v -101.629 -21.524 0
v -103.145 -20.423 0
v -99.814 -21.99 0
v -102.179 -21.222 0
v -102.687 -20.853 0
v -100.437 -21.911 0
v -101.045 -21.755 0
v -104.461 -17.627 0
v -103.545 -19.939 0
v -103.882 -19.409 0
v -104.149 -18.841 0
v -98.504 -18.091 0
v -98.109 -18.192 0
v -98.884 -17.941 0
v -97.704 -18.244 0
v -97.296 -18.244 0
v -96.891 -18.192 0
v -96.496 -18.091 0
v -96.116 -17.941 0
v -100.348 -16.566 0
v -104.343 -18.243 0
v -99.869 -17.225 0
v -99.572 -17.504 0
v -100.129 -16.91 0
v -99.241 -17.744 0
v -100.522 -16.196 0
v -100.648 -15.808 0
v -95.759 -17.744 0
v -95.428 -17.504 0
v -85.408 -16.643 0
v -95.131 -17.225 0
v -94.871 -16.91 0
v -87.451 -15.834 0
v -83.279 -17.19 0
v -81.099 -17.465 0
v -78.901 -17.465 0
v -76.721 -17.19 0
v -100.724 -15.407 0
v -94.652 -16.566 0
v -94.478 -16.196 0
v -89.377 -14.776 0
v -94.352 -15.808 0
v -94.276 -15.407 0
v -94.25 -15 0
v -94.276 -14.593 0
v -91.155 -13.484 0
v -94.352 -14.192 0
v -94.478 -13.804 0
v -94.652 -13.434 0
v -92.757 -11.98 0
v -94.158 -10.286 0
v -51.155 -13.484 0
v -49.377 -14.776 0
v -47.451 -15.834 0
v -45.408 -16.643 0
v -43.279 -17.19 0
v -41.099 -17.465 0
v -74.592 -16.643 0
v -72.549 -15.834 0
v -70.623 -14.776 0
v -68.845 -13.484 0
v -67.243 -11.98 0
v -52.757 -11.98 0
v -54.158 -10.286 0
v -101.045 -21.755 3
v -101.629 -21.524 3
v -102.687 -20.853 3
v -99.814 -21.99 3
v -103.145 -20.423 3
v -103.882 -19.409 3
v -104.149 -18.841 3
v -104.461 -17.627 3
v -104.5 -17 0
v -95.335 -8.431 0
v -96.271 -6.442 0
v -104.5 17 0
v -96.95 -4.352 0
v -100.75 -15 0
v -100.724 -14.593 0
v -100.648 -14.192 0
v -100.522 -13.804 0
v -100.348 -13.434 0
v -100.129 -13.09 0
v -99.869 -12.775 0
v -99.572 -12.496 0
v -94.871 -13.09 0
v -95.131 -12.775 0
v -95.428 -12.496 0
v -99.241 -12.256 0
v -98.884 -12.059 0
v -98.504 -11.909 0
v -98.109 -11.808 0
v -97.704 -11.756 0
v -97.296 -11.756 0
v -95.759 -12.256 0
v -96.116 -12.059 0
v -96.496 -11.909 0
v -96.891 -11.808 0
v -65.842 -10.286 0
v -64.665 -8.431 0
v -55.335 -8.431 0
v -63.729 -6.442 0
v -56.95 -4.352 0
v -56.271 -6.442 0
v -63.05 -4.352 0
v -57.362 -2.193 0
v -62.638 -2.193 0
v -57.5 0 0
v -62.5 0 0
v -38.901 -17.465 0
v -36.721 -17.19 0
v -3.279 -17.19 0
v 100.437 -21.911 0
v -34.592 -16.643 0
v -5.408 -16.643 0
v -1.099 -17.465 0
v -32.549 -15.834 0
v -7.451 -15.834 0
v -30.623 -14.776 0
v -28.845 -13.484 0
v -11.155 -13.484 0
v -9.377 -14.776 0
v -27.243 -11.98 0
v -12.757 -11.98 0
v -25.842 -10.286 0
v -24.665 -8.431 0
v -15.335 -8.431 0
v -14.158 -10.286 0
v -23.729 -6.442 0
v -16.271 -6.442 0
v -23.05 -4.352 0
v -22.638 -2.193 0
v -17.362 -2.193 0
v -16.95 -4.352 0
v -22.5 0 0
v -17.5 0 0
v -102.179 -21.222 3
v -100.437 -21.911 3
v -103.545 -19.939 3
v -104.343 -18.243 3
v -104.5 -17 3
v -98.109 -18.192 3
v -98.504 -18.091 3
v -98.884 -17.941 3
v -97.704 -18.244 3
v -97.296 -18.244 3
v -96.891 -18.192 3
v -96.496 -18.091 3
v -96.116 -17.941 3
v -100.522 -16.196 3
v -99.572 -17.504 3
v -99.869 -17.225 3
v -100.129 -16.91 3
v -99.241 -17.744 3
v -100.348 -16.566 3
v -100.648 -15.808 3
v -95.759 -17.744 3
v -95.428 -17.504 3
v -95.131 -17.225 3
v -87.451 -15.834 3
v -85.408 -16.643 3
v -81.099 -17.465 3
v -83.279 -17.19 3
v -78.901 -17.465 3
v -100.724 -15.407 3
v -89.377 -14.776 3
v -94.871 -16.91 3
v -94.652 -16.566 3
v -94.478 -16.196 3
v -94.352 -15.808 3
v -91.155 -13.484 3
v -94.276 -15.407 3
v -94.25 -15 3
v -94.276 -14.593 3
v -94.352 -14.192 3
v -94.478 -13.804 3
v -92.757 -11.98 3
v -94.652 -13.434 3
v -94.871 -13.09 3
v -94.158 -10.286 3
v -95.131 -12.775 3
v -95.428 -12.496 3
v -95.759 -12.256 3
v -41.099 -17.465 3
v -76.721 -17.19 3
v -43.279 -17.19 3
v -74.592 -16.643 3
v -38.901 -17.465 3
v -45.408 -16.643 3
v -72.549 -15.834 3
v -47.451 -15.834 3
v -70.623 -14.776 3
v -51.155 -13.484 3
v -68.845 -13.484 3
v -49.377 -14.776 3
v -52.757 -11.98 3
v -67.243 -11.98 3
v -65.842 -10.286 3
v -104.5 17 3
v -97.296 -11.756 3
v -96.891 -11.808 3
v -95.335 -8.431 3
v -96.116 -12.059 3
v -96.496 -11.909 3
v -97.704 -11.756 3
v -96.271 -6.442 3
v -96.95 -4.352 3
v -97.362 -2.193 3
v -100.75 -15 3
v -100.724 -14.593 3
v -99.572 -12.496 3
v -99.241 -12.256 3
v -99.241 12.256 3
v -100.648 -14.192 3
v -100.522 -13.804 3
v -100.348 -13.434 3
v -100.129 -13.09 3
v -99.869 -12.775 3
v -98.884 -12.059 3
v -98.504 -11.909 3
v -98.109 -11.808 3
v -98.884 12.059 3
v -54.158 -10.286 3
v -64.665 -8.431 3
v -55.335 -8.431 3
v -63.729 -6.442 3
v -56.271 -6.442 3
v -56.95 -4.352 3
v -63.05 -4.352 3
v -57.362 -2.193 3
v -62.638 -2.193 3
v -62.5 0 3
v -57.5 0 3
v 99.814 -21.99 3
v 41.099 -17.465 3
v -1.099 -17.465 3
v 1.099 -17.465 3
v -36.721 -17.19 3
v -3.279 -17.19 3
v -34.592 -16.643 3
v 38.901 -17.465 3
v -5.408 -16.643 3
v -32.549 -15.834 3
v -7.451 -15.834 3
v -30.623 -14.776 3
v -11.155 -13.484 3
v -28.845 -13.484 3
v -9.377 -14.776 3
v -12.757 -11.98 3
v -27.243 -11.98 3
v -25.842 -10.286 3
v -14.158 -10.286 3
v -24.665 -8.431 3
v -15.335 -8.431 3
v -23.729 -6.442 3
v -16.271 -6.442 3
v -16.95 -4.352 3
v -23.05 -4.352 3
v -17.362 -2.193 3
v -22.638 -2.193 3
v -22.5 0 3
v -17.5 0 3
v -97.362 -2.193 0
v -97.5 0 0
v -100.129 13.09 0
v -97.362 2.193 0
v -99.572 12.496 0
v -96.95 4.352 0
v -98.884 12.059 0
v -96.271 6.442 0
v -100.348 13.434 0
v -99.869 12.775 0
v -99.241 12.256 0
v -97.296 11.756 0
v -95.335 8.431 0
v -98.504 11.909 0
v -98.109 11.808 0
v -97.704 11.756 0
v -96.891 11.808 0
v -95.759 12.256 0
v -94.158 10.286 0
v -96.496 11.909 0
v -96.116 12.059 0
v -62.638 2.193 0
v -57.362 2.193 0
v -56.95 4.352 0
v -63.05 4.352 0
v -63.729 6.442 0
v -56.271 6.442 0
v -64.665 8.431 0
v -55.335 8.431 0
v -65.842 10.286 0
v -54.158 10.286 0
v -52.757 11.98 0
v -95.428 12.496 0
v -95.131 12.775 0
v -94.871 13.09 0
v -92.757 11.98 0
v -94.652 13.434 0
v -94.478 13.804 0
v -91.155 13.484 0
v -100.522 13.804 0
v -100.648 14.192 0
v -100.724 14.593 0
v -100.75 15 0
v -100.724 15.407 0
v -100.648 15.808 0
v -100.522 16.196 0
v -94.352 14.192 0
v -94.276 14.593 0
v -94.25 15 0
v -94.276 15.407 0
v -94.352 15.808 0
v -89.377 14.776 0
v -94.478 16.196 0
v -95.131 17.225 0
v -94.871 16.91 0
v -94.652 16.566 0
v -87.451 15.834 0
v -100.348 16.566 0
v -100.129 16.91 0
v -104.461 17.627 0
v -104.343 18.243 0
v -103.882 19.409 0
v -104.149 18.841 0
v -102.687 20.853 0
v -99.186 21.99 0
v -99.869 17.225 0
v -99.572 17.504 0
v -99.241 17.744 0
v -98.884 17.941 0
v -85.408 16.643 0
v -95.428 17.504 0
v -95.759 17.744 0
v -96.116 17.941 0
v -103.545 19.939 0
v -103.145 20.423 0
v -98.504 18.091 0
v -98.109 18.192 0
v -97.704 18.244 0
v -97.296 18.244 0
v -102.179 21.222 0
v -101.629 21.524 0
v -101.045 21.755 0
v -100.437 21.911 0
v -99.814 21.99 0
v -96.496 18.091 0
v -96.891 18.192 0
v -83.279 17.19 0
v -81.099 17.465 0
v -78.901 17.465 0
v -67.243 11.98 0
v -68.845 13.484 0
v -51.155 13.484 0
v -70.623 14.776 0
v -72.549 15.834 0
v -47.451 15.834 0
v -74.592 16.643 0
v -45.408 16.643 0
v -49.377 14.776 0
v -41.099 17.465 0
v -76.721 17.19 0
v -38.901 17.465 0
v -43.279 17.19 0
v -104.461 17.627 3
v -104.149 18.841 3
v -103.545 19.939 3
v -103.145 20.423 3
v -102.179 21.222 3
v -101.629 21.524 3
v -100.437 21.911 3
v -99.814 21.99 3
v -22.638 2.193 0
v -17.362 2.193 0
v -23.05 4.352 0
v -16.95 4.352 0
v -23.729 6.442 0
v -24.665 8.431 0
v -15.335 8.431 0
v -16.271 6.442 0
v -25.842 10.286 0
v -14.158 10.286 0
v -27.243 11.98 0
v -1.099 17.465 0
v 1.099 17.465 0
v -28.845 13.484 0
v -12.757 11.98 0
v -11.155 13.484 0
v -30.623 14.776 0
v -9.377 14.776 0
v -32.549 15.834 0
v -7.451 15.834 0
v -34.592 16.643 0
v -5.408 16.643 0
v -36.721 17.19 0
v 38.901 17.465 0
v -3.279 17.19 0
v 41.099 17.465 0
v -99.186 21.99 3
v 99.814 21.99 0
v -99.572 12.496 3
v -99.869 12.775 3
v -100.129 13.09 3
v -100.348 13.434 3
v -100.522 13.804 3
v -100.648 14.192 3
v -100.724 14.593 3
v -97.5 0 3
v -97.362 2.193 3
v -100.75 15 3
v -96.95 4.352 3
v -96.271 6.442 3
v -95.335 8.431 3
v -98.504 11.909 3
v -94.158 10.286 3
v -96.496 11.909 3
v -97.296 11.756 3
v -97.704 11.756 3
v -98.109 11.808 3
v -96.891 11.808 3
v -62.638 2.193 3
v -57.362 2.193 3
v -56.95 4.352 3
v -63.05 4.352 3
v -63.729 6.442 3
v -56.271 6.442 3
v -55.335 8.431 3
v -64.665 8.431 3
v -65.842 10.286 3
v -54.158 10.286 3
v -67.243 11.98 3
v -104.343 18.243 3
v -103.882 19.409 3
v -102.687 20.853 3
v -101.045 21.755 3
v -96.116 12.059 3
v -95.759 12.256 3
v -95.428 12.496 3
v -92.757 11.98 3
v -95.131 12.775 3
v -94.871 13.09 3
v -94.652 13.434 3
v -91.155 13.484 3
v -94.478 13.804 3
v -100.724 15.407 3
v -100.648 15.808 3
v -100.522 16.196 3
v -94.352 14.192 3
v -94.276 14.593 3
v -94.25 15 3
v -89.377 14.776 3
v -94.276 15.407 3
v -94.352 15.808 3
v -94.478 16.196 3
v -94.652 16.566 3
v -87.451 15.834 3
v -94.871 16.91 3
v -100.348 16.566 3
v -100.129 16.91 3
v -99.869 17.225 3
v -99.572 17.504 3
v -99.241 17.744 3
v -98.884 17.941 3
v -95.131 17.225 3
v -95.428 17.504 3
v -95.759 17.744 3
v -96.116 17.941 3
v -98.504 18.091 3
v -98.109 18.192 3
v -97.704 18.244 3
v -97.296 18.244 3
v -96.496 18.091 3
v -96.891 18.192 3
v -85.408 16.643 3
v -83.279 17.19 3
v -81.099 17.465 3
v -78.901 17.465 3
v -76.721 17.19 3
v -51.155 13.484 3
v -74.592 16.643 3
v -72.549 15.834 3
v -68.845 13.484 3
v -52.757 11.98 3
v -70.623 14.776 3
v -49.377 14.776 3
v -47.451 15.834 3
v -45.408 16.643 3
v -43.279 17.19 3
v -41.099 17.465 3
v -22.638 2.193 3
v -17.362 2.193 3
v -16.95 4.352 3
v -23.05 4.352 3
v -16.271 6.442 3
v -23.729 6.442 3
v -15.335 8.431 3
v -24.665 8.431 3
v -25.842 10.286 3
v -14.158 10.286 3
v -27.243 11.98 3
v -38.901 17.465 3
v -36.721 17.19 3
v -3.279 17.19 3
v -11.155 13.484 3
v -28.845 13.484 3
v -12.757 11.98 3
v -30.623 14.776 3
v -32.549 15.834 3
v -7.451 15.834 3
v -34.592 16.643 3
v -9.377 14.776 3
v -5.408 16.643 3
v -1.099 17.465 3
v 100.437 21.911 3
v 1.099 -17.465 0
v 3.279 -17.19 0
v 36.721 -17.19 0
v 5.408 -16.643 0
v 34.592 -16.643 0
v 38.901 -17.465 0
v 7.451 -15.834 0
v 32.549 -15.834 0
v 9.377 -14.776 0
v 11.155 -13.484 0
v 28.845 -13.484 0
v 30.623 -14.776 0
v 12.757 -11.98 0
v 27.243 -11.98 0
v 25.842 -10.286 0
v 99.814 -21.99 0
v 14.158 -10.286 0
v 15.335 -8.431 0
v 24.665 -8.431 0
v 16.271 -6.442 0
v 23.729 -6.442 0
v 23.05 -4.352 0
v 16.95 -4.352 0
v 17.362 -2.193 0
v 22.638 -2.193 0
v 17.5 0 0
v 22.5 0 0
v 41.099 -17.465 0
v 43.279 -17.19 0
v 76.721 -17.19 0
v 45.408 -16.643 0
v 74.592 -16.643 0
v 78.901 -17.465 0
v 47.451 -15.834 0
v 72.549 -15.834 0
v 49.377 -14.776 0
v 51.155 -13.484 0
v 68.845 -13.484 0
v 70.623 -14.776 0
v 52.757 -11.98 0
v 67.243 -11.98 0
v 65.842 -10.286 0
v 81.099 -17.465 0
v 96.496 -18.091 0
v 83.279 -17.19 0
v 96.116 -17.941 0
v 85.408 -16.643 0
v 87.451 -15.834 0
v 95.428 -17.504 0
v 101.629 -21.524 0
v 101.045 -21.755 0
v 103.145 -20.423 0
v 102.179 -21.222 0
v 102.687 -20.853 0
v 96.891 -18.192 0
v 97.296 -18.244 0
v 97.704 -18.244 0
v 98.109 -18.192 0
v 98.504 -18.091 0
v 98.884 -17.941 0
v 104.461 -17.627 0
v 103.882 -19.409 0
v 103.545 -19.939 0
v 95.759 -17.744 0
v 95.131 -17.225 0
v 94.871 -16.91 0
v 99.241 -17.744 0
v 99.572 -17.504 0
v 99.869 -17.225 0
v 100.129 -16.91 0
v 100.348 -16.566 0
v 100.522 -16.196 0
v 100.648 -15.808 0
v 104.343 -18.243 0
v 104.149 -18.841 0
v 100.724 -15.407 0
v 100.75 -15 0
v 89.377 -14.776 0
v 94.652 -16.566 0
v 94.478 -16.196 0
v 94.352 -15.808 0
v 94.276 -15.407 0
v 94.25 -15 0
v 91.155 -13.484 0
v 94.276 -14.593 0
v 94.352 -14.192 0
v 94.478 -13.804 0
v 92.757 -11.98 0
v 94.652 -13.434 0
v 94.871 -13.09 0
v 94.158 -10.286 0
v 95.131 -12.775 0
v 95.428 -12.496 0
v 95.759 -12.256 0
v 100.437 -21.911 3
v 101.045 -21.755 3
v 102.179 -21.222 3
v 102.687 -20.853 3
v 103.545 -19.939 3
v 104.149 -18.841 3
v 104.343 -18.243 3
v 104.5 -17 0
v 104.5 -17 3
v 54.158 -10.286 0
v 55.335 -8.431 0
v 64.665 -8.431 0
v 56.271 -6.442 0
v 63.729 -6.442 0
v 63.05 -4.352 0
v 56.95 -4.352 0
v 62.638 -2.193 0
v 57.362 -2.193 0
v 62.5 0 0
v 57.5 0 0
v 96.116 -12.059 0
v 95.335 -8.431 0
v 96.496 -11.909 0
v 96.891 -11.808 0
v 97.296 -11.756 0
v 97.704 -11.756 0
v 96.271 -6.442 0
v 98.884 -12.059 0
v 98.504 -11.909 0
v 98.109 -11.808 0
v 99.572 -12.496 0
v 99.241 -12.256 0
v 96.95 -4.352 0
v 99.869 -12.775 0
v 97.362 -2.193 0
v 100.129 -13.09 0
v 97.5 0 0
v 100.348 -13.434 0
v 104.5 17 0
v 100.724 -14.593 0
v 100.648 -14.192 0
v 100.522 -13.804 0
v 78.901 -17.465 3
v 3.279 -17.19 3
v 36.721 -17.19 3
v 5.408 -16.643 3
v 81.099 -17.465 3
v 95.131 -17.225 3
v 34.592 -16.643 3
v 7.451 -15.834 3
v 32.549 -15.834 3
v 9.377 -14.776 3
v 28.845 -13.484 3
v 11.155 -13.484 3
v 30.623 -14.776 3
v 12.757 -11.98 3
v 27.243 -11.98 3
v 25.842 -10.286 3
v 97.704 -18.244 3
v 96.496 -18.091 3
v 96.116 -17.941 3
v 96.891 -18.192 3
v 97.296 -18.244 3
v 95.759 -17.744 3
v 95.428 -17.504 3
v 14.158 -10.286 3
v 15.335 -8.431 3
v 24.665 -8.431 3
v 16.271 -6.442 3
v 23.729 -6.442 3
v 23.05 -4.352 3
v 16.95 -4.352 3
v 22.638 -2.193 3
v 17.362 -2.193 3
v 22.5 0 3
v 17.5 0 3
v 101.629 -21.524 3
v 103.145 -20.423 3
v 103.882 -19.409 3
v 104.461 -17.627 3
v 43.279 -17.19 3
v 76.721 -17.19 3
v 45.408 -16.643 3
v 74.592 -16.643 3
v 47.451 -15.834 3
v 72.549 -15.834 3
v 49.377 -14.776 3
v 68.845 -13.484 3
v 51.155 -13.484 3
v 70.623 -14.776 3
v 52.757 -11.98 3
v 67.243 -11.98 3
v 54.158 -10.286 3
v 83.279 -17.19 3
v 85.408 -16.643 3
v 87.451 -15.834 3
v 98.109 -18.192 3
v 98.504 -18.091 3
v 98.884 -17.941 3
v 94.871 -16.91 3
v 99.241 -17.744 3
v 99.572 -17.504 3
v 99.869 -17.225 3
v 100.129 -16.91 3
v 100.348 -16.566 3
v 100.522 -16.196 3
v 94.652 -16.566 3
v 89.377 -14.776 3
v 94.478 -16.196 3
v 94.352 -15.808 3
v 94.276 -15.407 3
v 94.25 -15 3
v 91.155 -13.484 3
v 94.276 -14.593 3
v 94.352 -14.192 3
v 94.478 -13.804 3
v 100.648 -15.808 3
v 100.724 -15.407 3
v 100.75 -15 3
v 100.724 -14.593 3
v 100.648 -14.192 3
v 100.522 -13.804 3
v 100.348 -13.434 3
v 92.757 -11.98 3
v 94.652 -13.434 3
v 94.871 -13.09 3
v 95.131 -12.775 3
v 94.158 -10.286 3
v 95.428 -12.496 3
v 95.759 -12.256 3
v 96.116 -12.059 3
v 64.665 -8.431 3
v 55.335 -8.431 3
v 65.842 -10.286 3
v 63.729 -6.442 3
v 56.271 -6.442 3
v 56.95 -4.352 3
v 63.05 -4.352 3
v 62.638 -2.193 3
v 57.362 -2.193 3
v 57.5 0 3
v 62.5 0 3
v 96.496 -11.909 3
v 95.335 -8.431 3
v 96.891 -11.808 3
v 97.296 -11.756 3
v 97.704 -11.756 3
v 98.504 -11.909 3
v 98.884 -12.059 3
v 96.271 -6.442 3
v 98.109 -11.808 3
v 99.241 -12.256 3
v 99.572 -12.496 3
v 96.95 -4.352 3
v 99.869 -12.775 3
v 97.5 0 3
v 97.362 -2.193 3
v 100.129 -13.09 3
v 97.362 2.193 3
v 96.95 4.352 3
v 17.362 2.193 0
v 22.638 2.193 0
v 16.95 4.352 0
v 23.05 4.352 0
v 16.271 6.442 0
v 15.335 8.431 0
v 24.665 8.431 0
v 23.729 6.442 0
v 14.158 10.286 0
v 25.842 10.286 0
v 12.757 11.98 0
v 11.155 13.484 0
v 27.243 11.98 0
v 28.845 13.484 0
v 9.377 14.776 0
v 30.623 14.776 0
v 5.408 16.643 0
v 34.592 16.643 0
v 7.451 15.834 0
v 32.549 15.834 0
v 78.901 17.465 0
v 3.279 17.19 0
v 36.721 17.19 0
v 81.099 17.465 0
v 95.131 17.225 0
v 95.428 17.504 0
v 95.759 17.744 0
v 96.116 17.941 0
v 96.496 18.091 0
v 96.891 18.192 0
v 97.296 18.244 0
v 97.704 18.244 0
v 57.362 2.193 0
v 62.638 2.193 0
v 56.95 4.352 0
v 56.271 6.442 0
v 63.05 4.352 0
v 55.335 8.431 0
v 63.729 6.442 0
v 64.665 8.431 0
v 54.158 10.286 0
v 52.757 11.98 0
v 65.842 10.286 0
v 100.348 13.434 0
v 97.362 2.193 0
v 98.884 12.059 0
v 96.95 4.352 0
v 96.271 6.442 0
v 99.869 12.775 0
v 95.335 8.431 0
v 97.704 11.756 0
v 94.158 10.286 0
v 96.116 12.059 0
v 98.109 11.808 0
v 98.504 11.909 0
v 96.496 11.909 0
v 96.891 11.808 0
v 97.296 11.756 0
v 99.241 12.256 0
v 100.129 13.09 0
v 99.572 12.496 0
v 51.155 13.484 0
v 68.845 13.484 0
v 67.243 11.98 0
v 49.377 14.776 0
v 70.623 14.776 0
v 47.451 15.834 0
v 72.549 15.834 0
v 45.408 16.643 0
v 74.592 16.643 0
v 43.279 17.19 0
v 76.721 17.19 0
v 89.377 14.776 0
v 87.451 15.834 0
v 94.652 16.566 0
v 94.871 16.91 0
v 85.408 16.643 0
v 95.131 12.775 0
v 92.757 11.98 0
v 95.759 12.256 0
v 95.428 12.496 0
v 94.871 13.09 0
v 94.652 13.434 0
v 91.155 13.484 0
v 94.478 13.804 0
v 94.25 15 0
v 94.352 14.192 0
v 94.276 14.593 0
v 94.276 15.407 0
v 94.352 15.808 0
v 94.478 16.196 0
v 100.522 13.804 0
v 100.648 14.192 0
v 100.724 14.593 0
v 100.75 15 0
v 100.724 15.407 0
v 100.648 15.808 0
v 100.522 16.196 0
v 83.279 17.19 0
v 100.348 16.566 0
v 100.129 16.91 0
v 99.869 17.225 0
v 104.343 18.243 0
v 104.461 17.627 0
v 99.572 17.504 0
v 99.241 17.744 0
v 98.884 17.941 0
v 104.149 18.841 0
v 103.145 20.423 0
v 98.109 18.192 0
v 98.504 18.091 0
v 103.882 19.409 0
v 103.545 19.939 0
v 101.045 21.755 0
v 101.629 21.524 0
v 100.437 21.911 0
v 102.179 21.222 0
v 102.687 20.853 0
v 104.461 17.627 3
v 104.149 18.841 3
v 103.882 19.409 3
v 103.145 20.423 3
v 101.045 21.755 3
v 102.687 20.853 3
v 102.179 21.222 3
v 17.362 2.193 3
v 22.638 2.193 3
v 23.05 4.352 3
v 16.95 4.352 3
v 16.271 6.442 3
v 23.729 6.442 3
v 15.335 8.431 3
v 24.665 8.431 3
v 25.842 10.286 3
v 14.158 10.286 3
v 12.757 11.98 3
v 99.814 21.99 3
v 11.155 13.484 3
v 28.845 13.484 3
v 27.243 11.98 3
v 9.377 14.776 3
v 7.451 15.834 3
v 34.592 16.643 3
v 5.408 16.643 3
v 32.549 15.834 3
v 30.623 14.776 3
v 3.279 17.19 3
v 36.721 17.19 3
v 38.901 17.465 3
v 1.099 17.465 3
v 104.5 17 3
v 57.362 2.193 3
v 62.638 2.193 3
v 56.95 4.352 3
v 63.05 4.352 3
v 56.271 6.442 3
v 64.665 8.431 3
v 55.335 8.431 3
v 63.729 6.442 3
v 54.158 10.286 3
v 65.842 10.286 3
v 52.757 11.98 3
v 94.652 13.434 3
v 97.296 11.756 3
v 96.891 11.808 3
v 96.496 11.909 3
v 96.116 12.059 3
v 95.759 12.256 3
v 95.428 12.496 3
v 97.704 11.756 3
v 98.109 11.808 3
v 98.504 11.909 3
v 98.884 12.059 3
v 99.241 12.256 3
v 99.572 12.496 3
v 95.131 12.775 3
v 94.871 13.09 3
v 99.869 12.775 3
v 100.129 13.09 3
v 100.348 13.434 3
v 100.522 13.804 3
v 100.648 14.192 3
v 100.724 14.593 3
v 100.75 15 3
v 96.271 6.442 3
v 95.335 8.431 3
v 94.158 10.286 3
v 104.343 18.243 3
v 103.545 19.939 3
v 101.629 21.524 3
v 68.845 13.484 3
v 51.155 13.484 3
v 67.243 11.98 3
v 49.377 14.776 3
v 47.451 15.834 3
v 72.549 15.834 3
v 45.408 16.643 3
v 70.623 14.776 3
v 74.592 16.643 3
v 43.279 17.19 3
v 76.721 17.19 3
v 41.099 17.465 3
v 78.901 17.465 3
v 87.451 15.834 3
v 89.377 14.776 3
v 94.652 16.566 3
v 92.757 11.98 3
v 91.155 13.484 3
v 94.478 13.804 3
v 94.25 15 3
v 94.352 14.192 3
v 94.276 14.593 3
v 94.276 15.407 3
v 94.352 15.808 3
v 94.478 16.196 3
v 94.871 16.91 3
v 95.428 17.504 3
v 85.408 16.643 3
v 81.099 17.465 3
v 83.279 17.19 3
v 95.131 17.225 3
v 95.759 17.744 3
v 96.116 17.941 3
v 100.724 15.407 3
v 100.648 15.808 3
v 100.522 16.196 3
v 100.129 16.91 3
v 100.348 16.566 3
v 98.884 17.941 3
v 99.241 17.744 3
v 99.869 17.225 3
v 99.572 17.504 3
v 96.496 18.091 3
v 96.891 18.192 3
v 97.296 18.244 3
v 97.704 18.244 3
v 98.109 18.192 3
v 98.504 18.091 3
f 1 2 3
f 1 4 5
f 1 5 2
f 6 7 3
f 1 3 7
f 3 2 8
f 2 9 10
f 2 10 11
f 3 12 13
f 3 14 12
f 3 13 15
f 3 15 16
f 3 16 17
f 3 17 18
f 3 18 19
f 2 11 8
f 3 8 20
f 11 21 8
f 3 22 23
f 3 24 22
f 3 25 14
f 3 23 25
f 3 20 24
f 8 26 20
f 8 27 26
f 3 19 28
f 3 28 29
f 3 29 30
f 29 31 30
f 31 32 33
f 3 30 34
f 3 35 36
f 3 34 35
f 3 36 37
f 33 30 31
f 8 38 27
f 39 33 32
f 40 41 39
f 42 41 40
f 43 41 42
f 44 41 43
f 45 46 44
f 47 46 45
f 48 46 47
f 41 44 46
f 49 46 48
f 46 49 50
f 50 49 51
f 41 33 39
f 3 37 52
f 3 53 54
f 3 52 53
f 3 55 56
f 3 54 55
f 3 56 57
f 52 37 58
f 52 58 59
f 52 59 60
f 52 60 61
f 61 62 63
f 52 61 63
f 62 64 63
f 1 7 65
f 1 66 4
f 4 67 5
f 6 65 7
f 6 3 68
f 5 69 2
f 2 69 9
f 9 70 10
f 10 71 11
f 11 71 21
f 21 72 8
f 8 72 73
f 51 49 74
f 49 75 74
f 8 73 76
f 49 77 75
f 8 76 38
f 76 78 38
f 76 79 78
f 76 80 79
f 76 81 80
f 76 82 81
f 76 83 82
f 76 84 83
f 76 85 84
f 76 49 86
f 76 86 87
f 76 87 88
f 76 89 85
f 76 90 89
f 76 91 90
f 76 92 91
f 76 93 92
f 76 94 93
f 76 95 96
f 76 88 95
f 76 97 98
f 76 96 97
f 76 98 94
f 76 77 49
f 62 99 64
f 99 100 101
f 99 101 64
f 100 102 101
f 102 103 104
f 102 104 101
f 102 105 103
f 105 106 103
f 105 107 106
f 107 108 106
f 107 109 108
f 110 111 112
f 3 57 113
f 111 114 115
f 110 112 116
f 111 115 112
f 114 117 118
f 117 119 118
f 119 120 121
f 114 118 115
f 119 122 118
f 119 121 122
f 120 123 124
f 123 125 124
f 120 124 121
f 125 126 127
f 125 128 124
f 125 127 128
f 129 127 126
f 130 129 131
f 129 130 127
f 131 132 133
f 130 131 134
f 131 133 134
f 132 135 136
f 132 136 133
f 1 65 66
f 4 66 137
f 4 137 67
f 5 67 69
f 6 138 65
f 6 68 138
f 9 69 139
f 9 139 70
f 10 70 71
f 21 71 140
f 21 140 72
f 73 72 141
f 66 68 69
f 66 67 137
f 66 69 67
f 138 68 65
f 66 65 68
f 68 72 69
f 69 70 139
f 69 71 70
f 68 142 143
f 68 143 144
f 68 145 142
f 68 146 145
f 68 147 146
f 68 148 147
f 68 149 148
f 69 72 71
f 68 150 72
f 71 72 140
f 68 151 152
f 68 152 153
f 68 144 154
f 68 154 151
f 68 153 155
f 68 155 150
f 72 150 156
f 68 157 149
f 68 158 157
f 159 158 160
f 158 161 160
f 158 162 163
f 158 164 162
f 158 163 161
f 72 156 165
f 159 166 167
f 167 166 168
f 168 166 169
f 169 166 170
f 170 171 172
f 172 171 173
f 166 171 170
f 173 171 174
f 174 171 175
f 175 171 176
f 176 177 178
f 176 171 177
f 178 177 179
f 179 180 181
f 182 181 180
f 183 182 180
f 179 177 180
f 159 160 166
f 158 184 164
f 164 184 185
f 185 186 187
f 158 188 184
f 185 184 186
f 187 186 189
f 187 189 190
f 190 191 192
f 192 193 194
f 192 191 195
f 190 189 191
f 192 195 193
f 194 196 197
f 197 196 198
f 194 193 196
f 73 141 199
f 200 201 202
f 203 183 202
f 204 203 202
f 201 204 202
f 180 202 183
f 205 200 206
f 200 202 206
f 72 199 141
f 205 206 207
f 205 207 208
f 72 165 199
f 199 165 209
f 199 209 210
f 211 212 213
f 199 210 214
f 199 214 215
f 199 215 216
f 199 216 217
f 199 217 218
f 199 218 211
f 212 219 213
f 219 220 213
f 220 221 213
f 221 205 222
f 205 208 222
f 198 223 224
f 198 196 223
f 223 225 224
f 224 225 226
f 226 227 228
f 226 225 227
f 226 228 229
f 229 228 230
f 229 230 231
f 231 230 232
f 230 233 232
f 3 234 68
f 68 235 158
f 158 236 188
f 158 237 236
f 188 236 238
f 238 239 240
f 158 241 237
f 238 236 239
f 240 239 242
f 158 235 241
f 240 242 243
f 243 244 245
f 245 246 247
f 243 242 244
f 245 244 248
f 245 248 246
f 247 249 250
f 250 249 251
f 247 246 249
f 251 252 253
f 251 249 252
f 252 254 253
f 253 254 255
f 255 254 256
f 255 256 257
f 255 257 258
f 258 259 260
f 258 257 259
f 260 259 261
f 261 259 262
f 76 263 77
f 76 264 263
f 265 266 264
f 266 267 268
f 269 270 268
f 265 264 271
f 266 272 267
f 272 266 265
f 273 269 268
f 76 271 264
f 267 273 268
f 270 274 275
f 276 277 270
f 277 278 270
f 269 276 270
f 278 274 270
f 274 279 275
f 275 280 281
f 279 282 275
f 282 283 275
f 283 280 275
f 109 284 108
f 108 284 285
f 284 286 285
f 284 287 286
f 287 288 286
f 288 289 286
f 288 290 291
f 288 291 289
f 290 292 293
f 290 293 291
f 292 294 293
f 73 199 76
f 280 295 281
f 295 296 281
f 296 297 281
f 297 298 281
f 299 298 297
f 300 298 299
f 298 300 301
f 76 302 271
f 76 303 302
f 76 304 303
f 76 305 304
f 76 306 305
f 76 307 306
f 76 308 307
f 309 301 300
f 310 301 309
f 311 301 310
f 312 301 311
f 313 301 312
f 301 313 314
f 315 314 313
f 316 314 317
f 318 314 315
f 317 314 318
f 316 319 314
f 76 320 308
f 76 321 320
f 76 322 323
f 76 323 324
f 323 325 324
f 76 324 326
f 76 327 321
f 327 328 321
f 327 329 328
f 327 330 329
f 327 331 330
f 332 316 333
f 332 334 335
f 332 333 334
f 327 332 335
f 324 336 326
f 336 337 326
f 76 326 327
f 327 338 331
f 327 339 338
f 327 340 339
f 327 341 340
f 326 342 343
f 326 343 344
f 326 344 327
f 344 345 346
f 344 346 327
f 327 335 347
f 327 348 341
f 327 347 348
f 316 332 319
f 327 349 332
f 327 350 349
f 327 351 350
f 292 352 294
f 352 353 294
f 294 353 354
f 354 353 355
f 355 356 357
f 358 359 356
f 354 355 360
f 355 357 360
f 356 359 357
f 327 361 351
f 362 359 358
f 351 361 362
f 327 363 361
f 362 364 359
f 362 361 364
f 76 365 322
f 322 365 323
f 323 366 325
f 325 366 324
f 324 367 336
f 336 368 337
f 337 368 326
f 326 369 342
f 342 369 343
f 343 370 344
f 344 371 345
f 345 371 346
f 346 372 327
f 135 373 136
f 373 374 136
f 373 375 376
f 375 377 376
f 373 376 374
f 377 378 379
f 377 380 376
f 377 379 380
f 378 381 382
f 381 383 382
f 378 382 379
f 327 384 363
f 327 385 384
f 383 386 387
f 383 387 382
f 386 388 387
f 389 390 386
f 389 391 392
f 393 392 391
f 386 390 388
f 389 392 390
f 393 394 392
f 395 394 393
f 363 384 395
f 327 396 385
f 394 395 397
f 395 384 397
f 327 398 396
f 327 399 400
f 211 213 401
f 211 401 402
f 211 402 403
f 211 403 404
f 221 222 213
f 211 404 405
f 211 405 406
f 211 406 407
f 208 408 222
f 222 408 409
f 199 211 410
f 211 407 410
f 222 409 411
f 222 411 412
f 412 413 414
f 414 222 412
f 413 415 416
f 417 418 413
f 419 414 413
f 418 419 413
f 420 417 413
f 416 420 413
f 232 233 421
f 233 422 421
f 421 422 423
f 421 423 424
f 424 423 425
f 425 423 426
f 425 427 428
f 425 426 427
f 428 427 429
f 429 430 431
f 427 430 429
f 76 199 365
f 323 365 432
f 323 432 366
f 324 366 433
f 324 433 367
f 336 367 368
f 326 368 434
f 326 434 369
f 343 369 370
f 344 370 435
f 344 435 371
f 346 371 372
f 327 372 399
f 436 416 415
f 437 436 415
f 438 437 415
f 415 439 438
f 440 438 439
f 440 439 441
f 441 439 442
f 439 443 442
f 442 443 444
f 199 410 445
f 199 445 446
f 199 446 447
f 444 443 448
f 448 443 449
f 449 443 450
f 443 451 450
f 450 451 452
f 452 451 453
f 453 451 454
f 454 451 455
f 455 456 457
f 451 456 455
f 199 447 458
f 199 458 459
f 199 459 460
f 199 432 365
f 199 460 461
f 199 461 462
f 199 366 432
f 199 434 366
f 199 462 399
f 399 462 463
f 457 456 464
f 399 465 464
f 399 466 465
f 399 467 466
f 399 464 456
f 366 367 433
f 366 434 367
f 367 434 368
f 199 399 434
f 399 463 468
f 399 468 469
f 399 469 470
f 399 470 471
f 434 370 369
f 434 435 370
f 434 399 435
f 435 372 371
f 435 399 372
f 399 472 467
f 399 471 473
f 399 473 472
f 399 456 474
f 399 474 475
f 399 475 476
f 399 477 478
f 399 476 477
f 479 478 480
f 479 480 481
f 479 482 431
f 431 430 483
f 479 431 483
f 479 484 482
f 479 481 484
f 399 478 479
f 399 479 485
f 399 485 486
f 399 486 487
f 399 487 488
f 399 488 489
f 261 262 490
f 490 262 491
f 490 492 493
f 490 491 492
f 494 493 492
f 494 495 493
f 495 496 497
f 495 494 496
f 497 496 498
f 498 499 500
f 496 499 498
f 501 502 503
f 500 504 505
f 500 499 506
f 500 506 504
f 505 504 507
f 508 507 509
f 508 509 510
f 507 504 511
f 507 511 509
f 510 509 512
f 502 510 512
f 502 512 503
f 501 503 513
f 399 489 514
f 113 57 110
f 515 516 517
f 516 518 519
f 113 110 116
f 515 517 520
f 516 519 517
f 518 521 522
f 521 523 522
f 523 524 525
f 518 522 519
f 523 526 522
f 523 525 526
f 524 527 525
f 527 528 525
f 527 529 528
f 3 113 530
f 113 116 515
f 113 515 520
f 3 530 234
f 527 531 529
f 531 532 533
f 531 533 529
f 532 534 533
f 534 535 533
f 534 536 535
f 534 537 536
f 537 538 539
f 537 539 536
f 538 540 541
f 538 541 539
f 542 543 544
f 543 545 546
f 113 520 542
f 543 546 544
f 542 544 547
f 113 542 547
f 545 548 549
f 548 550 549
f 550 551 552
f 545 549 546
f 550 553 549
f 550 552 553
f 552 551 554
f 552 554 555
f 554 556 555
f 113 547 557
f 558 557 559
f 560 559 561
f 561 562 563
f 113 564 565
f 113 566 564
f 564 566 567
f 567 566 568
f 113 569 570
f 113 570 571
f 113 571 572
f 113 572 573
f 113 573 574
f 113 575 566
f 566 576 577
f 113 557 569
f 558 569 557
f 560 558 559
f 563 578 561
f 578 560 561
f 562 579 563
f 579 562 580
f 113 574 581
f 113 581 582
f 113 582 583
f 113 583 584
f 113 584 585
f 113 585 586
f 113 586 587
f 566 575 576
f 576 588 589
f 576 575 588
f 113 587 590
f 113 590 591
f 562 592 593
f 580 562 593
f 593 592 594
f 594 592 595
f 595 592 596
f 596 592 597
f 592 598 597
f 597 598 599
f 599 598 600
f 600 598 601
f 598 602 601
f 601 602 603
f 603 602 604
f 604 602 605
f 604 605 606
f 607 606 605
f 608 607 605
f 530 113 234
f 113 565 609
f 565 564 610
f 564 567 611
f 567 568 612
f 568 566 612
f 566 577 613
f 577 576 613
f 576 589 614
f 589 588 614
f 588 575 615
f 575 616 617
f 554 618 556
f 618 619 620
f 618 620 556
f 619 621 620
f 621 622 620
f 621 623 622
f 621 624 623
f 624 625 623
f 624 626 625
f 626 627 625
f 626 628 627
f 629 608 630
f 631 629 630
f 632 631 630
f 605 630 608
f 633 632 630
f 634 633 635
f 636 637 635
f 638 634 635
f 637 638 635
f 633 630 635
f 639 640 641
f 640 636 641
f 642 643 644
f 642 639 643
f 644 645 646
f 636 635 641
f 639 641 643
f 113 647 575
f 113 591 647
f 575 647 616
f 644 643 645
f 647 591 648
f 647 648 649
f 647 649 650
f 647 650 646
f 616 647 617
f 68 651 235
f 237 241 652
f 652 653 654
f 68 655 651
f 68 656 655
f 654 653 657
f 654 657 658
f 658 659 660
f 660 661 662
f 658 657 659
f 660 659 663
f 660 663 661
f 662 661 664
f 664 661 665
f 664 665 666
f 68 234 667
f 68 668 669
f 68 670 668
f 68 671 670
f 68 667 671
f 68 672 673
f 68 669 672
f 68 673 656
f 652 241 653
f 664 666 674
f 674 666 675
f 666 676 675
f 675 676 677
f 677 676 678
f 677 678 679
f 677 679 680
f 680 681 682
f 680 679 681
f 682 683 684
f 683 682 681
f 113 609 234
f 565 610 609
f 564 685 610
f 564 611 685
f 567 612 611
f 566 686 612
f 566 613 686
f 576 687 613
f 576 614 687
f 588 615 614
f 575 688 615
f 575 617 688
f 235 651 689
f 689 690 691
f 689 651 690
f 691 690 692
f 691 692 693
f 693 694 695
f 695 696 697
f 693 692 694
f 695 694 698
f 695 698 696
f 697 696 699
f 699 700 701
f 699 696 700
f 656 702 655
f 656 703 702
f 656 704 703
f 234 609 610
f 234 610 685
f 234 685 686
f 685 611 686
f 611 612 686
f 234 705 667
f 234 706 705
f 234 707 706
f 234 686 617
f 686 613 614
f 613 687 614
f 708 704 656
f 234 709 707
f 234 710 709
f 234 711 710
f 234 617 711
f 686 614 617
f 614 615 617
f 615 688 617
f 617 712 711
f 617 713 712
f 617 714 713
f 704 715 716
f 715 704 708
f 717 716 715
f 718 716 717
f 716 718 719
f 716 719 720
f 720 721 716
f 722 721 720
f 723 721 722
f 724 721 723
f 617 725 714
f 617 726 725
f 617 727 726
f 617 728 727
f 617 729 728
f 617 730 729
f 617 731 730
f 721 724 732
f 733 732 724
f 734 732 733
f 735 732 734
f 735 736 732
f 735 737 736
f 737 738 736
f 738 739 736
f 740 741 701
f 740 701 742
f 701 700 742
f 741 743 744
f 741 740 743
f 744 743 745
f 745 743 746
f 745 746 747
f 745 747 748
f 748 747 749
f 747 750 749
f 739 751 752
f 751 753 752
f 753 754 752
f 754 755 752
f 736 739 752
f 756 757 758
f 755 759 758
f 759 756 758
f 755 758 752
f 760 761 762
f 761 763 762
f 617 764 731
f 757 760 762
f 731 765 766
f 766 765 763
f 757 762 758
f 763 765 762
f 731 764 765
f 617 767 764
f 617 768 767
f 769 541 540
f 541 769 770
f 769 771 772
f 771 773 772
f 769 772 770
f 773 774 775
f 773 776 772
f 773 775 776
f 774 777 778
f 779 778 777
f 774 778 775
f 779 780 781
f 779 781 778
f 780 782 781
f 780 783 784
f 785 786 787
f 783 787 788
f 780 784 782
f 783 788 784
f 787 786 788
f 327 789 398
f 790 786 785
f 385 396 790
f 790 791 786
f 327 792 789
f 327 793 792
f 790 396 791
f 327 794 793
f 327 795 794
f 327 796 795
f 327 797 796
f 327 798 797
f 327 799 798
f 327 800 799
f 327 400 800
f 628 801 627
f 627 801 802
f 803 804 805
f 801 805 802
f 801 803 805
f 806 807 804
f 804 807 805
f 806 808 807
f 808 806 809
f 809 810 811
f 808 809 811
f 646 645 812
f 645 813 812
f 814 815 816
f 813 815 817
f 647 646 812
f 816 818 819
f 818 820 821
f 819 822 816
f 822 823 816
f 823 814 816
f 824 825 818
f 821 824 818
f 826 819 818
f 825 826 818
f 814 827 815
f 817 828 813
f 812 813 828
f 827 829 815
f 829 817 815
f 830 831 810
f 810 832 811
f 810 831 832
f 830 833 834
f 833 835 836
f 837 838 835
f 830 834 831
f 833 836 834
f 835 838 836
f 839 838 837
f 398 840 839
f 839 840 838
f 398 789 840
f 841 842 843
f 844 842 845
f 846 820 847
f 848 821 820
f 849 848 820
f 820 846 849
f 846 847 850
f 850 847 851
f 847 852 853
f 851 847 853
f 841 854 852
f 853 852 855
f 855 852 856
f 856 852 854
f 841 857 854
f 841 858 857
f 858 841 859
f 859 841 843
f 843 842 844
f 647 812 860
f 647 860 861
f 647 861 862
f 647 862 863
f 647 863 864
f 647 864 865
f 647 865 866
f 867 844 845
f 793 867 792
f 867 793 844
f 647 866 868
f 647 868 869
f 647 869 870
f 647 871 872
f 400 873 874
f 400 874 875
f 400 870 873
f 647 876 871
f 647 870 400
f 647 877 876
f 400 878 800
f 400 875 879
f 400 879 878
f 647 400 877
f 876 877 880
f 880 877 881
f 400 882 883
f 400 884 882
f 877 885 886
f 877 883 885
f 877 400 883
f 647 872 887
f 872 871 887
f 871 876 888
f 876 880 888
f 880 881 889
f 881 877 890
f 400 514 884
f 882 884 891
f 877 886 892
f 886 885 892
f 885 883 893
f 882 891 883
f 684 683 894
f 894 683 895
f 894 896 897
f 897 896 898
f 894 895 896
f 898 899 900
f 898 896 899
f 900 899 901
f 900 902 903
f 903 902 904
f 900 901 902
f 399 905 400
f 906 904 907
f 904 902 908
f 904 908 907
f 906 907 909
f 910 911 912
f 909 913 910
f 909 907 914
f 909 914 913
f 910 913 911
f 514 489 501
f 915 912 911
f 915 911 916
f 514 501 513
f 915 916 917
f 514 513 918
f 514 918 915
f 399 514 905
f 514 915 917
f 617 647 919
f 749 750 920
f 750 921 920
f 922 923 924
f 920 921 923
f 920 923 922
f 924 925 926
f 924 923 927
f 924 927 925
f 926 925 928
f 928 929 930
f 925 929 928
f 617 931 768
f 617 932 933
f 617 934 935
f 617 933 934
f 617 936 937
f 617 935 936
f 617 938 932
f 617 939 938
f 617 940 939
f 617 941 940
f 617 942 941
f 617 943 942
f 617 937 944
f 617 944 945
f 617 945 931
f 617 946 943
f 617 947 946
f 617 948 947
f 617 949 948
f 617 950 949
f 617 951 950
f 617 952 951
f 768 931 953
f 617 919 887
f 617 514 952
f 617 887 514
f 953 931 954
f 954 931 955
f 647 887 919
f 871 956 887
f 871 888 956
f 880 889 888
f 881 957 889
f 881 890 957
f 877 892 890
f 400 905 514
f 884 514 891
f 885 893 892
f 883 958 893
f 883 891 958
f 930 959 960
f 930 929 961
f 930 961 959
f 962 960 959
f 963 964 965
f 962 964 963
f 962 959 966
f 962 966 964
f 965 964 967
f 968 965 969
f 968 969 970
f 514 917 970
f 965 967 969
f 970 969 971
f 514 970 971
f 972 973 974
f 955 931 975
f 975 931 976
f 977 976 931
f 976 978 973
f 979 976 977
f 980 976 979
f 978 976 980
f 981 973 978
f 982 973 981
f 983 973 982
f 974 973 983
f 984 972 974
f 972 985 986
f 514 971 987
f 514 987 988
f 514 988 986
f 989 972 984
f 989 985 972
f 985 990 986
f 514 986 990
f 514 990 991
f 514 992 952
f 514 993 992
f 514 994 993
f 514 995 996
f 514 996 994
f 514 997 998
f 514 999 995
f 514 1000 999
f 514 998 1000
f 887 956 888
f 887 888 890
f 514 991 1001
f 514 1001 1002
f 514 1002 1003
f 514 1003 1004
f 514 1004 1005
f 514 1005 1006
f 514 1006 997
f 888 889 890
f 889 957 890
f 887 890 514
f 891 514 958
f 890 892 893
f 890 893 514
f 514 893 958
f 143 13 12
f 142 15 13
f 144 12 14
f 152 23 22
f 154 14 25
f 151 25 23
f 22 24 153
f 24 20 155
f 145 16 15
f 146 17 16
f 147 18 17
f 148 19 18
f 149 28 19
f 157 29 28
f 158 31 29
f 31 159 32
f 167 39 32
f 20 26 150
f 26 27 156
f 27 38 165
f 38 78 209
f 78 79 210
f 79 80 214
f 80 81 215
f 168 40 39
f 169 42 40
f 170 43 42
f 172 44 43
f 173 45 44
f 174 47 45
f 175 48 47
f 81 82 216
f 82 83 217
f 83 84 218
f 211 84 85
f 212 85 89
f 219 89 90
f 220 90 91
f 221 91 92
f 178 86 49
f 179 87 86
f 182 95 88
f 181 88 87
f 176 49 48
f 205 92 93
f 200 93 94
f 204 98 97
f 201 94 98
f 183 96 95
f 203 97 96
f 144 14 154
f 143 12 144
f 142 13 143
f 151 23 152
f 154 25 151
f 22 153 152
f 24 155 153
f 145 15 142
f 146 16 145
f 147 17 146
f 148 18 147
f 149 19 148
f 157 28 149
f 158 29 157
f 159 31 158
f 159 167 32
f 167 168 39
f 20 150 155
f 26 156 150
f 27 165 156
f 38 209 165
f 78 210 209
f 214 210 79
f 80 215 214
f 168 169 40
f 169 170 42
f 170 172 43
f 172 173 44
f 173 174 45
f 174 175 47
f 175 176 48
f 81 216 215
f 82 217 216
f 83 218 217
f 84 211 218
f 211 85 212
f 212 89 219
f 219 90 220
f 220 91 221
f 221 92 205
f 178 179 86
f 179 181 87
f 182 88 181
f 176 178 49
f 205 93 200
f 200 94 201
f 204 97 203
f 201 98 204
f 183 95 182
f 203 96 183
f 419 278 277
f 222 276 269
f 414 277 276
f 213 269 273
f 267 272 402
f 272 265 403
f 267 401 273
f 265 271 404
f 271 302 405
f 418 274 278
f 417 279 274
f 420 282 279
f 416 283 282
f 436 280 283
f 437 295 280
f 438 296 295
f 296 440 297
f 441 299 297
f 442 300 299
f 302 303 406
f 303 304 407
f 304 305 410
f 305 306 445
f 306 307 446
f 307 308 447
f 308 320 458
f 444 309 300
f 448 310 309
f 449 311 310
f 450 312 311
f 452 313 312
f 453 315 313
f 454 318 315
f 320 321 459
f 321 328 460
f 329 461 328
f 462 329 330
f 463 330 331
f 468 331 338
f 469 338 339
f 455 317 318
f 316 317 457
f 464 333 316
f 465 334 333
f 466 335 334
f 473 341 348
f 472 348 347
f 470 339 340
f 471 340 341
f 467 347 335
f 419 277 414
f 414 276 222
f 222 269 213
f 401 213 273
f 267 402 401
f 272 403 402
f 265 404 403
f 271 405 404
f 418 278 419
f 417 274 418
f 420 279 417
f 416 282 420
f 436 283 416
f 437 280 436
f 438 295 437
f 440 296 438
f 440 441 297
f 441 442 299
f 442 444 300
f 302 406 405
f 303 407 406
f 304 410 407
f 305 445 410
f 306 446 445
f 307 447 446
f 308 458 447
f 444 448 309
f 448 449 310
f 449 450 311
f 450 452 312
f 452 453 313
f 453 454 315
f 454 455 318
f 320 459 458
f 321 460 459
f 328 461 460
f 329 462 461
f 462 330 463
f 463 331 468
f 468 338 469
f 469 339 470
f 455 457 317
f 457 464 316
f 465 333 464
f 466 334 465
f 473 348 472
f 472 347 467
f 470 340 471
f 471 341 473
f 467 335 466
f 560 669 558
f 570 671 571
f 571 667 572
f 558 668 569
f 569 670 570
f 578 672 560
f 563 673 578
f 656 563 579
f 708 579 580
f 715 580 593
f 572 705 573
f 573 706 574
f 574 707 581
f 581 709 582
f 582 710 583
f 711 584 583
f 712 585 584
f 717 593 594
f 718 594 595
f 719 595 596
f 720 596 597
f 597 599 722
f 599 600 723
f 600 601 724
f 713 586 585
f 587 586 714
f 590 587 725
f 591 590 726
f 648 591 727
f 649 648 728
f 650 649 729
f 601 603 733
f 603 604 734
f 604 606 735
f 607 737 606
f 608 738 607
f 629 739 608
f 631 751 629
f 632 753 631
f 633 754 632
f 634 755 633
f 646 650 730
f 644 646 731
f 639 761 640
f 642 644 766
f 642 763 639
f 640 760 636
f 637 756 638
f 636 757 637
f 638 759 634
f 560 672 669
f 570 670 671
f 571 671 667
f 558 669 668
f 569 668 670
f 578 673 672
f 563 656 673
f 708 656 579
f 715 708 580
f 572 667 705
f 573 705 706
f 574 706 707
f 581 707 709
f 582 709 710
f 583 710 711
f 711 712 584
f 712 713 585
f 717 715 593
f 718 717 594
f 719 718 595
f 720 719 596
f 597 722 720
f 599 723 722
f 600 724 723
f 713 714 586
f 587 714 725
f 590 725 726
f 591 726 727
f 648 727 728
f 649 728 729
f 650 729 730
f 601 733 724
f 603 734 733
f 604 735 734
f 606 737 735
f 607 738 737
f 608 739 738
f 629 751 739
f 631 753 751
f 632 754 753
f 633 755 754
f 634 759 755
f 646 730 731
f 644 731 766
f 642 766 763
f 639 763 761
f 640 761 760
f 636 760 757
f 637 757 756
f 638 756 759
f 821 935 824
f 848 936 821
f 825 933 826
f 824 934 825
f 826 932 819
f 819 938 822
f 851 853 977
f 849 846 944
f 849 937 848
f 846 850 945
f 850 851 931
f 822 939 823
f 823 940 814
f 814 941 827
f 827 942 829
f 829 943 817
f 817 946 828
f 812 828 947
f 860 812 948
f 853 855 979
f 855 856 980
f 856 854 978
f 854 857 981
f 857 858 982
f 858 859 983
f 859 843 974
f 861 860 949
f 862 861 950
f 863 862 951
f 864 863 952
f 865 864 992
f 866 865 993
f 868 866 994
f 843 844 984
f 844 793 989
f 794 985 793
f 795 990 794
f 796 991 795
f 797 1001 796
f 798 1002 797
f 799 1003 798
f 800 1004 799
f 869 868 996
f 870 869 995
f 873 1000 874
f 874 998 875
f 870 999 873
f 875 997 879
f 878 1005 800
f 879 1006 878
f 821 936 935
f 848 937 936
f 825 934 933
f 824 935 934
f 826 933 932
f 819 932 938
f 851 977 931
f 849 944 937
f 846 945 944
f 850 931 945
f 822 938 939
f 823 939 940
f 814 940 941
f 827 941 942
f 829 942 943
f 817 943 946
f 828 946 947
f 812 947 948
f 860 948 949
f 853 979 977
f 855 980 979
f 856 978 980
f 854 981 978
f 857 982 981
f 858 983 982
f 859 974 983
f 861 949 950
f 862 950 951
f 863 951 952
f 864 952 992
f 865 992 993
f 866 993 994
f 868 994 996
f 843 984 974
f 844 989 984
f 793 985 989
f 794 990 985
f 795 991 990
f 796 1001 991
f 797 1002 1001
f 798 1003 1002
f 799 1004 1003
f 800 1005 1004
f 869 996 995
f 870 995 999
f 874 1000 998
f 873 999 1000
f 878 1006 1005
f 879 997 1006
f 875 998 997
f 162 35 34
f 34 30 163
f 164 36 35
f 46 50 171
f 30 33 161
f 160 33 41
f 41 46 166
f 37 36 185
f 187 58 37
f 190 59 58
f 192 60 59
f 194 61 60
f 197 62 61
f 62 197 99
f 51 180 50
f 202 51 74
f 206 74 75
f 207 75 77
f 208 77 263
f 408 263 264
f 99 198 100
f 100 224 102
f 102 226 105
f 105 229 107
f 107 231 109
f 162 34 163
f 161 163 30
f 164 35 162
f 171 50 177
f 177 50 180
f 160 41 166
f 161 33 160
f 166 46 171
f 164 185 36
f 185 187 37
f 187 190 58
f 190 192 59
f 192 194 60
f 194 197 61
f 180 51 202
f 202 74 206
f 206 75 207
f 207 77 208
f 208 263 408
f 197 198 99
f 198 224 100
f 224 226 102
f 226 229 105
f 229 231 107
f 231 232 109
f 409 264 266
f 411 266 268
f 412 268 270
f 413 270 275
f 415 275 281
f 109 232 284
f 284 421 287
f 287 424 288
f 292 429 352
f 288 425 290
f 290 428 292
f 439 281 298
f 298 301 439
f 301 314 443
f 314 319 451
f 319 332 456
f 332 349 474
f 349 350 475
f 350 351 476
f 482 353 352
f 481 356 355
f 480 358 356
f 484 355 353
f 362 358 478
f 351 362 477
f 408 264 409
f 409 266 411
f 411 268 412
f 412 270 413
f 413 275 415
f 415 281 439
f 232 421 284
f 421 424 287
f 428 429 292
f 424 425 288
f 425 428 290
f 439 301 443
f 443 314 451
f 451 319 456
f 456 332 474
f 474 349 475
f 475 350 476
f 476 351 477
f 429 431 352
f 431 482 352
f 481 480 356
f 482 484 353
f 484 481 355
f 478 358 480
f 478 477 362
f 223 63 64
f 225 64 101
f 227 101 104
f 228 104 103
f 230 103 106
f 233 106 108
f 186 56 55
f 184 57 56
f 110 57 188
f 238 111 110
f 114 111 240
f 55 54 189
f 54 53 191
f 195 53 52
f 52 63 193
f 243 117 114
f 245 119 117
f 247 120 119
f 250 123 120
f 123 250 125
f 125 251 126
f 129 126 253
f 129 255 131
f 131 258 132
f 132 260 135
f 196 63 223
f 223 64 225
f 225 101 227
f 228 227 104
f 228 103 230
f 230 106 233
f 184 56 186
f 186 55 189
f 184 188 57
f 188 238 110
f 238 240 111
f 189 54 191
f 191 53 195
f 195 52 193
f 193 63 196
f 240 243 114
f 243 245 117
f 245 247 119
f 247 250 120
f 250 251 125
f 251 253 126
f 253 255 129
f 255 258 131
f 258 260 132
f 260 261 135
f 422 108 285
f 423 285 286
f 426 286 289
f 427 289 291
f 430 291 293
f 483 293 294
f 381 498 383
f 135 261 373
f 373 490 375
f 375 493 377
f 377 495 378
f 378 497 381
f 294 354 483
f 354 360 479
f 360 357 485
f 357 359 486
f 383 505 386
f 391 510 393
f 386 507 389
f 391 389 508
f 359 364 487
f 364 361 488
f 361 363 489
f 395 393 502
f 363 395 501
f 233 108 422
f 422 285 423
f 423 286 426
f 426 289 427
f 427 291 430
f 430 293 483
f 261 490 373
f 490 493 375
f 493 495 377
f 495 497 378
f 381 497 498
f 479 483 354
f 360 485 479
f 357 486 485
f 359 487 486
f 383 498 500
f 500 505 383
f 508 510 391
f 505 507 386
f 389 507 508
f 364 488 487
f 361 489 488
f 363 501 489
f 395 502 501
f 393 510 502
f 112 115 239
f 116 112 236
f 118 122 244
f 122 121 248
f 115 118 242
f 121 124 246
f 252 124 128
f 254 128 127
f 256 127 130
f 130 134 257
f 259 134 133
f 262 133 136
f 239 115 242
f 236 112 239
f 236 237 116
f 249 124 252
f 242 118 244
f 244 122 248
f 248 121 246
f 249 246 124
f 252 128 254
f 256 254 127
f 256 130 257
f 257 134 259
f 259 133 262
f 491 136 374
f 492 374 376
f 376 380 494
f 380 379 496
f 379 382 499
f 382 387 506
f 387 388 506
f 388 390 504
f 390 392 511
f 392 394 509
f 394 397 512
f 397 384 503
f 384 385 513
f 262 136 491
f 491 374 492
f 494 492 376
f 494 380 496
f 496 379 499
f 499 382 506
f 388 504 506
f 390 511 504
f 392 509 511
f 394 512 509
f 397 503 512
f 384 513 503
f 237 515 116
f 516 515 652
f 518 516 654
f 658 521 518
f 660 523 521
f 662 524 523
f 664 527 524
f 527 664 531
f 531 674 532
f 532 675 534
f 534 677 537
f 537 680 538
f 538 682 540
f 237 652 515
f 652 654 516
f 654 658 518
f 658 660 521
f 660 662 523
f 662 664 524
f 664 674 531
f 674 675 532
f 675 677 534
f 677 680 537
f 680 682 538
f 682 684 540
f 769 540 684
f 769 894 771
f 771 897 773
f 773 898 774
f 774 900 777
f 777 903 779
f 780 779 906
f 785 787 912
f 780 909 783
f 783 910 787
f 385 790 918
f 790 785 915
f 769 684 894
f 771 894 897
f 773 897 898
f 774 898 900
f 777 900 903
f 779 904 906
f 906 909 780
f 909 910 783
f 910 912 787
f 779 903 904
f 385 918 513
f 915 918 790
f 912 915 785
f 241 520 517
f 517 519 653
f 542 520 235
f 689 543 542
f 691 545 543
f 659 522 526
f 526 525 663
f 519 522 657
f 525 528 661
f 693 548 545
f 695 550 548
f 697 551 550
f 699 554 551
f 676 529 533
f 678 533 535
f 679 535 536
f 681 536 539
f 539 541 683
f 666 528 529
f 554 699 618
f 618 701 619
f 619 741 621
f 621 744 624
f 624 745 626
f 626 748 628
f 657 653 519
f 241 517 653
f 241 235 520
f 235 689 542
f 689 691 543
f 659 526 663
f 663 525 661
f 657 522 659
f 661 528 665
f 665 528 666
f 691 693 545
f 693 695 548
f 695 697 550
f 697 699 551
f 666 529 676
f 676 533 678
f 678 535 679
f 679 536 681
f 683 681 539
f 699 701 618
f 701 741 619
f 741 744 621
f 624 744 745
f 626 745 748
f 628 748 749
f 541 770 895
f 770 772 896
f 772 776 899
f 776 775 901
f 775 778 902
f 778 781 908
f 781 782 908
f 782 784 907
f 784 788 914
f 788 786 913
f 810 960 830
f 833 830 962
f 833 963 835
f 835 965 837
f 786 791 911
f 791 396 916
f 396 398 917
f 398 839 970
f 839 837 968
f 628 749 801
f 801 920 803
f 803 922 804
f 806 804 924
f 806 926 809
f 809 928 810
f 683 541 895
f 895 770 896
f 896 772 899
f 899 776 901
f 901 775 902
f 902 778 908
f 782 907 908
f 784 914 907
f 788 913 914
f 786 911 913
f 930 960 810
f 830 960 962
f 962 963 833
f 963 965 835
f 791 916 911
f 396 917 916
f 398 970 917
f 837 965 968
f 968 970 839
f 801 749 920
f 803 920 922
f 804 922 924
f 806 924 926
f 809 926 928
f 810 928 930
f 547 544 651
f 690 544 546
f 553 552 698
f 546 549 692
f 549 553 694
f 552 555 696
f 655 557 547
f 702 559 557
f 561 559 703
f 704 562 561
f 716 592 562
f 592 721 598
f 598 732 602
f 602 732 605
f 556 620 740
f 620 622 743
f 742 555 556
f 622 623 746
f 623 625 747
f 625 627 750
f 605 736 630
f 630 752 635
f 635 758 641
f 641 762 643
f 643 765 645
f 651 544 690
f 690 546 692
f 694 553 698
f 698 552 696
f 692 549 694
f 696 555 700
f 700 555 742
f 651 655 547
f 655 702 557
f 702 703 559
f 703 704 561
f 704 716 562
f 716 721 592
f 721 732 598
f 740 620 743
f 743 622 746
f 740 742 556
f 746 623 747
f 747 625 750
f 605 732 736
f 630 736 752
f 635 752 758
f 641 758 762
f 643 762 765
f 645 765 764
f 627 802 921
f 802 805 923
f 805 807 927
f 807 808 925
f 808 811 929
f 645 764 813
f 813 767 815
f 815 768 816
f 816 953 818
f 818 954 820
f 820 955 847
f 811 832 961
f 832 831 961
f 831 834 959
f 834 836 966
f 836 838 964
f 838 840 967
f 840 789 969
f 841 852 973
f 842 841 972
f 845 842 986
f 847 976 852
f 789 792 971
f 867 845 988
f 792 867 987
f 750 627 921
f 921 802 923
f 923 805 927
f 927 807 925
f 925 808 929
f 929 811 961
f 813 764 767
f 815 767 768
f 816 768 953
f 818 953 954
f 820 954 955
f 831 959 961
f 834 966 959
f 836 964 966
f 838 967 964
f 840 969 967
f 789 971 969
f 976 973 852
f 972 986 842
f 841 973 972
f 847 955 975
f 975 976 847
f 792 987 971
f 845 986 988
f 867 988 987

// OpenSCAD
$fn = 50;

difference() {
	union() {
		hull() {
			translate(v = [-99.5, 17.0, 0]) {
				cylinder(h = 3, r = 5);
			}
			translate(v = [99.5, 17.0, 0]) {
				cylinder(h = 3, r = 5);
			}
			translate(v = [-99.5, -17.0, 0]) {
				cylinder(h = 3, r = 5);
			}
			translate(v = [99.5, -17.0, 0]) {
				cylinder(h = 3, r = 5);
			}
		}
	}
	union() {
		translate(v = [-97.5, -15.0, -100.0]) {
			cylinder(h = 200, r = 3.25);
		}
		translate(v = [-97.5, 15.0, -100.0]) {
			cylinder(h = 200, r = 3.25);
		}
		translate(v = [97.5, -15.0, -100.0]) {
			cylinder(h = 200, r = 3.25);
		}
		translate(v = [97.5, 15.0, -100.0]) {
			cylinder(h = 200, r = 3.25);
		}
		translate(v = [-97.5, -15.0, -100.0]) {
			cylinder(h = 200, r = 1.8);
		}
		translate(v = [-97.5, 15.0, -100.0]) {
			cylinder(h = 200, r = 1.8);
		}
		translate(v = [97.5, -15.0, -100.0]) {
			cylinder(h = 200, r = 1.8);
		}
		translate(v = [97.5, 15.0, -100.0]) {
			cylinder(h = 200, r = 1.8);
		}
		translate(v = [-80.0, 0, 0.0]) {
			cylinder(h = 3, r = 17.5);
		}
		translate(v = [-40.0, 0, 0.0]) {
			cylinder(h = 3, r = 17.5);
		}
		cylinder(h = 3, r = 17.5);
		translate(v = [40.0, 0, 0.0]) {
			cylinder(h = 3, r = 17.5);
		}
		translate(v = [80.0, 0, 0.0]) {
			cylinder(h = 3, r = 17.5);
		}
	}
}
